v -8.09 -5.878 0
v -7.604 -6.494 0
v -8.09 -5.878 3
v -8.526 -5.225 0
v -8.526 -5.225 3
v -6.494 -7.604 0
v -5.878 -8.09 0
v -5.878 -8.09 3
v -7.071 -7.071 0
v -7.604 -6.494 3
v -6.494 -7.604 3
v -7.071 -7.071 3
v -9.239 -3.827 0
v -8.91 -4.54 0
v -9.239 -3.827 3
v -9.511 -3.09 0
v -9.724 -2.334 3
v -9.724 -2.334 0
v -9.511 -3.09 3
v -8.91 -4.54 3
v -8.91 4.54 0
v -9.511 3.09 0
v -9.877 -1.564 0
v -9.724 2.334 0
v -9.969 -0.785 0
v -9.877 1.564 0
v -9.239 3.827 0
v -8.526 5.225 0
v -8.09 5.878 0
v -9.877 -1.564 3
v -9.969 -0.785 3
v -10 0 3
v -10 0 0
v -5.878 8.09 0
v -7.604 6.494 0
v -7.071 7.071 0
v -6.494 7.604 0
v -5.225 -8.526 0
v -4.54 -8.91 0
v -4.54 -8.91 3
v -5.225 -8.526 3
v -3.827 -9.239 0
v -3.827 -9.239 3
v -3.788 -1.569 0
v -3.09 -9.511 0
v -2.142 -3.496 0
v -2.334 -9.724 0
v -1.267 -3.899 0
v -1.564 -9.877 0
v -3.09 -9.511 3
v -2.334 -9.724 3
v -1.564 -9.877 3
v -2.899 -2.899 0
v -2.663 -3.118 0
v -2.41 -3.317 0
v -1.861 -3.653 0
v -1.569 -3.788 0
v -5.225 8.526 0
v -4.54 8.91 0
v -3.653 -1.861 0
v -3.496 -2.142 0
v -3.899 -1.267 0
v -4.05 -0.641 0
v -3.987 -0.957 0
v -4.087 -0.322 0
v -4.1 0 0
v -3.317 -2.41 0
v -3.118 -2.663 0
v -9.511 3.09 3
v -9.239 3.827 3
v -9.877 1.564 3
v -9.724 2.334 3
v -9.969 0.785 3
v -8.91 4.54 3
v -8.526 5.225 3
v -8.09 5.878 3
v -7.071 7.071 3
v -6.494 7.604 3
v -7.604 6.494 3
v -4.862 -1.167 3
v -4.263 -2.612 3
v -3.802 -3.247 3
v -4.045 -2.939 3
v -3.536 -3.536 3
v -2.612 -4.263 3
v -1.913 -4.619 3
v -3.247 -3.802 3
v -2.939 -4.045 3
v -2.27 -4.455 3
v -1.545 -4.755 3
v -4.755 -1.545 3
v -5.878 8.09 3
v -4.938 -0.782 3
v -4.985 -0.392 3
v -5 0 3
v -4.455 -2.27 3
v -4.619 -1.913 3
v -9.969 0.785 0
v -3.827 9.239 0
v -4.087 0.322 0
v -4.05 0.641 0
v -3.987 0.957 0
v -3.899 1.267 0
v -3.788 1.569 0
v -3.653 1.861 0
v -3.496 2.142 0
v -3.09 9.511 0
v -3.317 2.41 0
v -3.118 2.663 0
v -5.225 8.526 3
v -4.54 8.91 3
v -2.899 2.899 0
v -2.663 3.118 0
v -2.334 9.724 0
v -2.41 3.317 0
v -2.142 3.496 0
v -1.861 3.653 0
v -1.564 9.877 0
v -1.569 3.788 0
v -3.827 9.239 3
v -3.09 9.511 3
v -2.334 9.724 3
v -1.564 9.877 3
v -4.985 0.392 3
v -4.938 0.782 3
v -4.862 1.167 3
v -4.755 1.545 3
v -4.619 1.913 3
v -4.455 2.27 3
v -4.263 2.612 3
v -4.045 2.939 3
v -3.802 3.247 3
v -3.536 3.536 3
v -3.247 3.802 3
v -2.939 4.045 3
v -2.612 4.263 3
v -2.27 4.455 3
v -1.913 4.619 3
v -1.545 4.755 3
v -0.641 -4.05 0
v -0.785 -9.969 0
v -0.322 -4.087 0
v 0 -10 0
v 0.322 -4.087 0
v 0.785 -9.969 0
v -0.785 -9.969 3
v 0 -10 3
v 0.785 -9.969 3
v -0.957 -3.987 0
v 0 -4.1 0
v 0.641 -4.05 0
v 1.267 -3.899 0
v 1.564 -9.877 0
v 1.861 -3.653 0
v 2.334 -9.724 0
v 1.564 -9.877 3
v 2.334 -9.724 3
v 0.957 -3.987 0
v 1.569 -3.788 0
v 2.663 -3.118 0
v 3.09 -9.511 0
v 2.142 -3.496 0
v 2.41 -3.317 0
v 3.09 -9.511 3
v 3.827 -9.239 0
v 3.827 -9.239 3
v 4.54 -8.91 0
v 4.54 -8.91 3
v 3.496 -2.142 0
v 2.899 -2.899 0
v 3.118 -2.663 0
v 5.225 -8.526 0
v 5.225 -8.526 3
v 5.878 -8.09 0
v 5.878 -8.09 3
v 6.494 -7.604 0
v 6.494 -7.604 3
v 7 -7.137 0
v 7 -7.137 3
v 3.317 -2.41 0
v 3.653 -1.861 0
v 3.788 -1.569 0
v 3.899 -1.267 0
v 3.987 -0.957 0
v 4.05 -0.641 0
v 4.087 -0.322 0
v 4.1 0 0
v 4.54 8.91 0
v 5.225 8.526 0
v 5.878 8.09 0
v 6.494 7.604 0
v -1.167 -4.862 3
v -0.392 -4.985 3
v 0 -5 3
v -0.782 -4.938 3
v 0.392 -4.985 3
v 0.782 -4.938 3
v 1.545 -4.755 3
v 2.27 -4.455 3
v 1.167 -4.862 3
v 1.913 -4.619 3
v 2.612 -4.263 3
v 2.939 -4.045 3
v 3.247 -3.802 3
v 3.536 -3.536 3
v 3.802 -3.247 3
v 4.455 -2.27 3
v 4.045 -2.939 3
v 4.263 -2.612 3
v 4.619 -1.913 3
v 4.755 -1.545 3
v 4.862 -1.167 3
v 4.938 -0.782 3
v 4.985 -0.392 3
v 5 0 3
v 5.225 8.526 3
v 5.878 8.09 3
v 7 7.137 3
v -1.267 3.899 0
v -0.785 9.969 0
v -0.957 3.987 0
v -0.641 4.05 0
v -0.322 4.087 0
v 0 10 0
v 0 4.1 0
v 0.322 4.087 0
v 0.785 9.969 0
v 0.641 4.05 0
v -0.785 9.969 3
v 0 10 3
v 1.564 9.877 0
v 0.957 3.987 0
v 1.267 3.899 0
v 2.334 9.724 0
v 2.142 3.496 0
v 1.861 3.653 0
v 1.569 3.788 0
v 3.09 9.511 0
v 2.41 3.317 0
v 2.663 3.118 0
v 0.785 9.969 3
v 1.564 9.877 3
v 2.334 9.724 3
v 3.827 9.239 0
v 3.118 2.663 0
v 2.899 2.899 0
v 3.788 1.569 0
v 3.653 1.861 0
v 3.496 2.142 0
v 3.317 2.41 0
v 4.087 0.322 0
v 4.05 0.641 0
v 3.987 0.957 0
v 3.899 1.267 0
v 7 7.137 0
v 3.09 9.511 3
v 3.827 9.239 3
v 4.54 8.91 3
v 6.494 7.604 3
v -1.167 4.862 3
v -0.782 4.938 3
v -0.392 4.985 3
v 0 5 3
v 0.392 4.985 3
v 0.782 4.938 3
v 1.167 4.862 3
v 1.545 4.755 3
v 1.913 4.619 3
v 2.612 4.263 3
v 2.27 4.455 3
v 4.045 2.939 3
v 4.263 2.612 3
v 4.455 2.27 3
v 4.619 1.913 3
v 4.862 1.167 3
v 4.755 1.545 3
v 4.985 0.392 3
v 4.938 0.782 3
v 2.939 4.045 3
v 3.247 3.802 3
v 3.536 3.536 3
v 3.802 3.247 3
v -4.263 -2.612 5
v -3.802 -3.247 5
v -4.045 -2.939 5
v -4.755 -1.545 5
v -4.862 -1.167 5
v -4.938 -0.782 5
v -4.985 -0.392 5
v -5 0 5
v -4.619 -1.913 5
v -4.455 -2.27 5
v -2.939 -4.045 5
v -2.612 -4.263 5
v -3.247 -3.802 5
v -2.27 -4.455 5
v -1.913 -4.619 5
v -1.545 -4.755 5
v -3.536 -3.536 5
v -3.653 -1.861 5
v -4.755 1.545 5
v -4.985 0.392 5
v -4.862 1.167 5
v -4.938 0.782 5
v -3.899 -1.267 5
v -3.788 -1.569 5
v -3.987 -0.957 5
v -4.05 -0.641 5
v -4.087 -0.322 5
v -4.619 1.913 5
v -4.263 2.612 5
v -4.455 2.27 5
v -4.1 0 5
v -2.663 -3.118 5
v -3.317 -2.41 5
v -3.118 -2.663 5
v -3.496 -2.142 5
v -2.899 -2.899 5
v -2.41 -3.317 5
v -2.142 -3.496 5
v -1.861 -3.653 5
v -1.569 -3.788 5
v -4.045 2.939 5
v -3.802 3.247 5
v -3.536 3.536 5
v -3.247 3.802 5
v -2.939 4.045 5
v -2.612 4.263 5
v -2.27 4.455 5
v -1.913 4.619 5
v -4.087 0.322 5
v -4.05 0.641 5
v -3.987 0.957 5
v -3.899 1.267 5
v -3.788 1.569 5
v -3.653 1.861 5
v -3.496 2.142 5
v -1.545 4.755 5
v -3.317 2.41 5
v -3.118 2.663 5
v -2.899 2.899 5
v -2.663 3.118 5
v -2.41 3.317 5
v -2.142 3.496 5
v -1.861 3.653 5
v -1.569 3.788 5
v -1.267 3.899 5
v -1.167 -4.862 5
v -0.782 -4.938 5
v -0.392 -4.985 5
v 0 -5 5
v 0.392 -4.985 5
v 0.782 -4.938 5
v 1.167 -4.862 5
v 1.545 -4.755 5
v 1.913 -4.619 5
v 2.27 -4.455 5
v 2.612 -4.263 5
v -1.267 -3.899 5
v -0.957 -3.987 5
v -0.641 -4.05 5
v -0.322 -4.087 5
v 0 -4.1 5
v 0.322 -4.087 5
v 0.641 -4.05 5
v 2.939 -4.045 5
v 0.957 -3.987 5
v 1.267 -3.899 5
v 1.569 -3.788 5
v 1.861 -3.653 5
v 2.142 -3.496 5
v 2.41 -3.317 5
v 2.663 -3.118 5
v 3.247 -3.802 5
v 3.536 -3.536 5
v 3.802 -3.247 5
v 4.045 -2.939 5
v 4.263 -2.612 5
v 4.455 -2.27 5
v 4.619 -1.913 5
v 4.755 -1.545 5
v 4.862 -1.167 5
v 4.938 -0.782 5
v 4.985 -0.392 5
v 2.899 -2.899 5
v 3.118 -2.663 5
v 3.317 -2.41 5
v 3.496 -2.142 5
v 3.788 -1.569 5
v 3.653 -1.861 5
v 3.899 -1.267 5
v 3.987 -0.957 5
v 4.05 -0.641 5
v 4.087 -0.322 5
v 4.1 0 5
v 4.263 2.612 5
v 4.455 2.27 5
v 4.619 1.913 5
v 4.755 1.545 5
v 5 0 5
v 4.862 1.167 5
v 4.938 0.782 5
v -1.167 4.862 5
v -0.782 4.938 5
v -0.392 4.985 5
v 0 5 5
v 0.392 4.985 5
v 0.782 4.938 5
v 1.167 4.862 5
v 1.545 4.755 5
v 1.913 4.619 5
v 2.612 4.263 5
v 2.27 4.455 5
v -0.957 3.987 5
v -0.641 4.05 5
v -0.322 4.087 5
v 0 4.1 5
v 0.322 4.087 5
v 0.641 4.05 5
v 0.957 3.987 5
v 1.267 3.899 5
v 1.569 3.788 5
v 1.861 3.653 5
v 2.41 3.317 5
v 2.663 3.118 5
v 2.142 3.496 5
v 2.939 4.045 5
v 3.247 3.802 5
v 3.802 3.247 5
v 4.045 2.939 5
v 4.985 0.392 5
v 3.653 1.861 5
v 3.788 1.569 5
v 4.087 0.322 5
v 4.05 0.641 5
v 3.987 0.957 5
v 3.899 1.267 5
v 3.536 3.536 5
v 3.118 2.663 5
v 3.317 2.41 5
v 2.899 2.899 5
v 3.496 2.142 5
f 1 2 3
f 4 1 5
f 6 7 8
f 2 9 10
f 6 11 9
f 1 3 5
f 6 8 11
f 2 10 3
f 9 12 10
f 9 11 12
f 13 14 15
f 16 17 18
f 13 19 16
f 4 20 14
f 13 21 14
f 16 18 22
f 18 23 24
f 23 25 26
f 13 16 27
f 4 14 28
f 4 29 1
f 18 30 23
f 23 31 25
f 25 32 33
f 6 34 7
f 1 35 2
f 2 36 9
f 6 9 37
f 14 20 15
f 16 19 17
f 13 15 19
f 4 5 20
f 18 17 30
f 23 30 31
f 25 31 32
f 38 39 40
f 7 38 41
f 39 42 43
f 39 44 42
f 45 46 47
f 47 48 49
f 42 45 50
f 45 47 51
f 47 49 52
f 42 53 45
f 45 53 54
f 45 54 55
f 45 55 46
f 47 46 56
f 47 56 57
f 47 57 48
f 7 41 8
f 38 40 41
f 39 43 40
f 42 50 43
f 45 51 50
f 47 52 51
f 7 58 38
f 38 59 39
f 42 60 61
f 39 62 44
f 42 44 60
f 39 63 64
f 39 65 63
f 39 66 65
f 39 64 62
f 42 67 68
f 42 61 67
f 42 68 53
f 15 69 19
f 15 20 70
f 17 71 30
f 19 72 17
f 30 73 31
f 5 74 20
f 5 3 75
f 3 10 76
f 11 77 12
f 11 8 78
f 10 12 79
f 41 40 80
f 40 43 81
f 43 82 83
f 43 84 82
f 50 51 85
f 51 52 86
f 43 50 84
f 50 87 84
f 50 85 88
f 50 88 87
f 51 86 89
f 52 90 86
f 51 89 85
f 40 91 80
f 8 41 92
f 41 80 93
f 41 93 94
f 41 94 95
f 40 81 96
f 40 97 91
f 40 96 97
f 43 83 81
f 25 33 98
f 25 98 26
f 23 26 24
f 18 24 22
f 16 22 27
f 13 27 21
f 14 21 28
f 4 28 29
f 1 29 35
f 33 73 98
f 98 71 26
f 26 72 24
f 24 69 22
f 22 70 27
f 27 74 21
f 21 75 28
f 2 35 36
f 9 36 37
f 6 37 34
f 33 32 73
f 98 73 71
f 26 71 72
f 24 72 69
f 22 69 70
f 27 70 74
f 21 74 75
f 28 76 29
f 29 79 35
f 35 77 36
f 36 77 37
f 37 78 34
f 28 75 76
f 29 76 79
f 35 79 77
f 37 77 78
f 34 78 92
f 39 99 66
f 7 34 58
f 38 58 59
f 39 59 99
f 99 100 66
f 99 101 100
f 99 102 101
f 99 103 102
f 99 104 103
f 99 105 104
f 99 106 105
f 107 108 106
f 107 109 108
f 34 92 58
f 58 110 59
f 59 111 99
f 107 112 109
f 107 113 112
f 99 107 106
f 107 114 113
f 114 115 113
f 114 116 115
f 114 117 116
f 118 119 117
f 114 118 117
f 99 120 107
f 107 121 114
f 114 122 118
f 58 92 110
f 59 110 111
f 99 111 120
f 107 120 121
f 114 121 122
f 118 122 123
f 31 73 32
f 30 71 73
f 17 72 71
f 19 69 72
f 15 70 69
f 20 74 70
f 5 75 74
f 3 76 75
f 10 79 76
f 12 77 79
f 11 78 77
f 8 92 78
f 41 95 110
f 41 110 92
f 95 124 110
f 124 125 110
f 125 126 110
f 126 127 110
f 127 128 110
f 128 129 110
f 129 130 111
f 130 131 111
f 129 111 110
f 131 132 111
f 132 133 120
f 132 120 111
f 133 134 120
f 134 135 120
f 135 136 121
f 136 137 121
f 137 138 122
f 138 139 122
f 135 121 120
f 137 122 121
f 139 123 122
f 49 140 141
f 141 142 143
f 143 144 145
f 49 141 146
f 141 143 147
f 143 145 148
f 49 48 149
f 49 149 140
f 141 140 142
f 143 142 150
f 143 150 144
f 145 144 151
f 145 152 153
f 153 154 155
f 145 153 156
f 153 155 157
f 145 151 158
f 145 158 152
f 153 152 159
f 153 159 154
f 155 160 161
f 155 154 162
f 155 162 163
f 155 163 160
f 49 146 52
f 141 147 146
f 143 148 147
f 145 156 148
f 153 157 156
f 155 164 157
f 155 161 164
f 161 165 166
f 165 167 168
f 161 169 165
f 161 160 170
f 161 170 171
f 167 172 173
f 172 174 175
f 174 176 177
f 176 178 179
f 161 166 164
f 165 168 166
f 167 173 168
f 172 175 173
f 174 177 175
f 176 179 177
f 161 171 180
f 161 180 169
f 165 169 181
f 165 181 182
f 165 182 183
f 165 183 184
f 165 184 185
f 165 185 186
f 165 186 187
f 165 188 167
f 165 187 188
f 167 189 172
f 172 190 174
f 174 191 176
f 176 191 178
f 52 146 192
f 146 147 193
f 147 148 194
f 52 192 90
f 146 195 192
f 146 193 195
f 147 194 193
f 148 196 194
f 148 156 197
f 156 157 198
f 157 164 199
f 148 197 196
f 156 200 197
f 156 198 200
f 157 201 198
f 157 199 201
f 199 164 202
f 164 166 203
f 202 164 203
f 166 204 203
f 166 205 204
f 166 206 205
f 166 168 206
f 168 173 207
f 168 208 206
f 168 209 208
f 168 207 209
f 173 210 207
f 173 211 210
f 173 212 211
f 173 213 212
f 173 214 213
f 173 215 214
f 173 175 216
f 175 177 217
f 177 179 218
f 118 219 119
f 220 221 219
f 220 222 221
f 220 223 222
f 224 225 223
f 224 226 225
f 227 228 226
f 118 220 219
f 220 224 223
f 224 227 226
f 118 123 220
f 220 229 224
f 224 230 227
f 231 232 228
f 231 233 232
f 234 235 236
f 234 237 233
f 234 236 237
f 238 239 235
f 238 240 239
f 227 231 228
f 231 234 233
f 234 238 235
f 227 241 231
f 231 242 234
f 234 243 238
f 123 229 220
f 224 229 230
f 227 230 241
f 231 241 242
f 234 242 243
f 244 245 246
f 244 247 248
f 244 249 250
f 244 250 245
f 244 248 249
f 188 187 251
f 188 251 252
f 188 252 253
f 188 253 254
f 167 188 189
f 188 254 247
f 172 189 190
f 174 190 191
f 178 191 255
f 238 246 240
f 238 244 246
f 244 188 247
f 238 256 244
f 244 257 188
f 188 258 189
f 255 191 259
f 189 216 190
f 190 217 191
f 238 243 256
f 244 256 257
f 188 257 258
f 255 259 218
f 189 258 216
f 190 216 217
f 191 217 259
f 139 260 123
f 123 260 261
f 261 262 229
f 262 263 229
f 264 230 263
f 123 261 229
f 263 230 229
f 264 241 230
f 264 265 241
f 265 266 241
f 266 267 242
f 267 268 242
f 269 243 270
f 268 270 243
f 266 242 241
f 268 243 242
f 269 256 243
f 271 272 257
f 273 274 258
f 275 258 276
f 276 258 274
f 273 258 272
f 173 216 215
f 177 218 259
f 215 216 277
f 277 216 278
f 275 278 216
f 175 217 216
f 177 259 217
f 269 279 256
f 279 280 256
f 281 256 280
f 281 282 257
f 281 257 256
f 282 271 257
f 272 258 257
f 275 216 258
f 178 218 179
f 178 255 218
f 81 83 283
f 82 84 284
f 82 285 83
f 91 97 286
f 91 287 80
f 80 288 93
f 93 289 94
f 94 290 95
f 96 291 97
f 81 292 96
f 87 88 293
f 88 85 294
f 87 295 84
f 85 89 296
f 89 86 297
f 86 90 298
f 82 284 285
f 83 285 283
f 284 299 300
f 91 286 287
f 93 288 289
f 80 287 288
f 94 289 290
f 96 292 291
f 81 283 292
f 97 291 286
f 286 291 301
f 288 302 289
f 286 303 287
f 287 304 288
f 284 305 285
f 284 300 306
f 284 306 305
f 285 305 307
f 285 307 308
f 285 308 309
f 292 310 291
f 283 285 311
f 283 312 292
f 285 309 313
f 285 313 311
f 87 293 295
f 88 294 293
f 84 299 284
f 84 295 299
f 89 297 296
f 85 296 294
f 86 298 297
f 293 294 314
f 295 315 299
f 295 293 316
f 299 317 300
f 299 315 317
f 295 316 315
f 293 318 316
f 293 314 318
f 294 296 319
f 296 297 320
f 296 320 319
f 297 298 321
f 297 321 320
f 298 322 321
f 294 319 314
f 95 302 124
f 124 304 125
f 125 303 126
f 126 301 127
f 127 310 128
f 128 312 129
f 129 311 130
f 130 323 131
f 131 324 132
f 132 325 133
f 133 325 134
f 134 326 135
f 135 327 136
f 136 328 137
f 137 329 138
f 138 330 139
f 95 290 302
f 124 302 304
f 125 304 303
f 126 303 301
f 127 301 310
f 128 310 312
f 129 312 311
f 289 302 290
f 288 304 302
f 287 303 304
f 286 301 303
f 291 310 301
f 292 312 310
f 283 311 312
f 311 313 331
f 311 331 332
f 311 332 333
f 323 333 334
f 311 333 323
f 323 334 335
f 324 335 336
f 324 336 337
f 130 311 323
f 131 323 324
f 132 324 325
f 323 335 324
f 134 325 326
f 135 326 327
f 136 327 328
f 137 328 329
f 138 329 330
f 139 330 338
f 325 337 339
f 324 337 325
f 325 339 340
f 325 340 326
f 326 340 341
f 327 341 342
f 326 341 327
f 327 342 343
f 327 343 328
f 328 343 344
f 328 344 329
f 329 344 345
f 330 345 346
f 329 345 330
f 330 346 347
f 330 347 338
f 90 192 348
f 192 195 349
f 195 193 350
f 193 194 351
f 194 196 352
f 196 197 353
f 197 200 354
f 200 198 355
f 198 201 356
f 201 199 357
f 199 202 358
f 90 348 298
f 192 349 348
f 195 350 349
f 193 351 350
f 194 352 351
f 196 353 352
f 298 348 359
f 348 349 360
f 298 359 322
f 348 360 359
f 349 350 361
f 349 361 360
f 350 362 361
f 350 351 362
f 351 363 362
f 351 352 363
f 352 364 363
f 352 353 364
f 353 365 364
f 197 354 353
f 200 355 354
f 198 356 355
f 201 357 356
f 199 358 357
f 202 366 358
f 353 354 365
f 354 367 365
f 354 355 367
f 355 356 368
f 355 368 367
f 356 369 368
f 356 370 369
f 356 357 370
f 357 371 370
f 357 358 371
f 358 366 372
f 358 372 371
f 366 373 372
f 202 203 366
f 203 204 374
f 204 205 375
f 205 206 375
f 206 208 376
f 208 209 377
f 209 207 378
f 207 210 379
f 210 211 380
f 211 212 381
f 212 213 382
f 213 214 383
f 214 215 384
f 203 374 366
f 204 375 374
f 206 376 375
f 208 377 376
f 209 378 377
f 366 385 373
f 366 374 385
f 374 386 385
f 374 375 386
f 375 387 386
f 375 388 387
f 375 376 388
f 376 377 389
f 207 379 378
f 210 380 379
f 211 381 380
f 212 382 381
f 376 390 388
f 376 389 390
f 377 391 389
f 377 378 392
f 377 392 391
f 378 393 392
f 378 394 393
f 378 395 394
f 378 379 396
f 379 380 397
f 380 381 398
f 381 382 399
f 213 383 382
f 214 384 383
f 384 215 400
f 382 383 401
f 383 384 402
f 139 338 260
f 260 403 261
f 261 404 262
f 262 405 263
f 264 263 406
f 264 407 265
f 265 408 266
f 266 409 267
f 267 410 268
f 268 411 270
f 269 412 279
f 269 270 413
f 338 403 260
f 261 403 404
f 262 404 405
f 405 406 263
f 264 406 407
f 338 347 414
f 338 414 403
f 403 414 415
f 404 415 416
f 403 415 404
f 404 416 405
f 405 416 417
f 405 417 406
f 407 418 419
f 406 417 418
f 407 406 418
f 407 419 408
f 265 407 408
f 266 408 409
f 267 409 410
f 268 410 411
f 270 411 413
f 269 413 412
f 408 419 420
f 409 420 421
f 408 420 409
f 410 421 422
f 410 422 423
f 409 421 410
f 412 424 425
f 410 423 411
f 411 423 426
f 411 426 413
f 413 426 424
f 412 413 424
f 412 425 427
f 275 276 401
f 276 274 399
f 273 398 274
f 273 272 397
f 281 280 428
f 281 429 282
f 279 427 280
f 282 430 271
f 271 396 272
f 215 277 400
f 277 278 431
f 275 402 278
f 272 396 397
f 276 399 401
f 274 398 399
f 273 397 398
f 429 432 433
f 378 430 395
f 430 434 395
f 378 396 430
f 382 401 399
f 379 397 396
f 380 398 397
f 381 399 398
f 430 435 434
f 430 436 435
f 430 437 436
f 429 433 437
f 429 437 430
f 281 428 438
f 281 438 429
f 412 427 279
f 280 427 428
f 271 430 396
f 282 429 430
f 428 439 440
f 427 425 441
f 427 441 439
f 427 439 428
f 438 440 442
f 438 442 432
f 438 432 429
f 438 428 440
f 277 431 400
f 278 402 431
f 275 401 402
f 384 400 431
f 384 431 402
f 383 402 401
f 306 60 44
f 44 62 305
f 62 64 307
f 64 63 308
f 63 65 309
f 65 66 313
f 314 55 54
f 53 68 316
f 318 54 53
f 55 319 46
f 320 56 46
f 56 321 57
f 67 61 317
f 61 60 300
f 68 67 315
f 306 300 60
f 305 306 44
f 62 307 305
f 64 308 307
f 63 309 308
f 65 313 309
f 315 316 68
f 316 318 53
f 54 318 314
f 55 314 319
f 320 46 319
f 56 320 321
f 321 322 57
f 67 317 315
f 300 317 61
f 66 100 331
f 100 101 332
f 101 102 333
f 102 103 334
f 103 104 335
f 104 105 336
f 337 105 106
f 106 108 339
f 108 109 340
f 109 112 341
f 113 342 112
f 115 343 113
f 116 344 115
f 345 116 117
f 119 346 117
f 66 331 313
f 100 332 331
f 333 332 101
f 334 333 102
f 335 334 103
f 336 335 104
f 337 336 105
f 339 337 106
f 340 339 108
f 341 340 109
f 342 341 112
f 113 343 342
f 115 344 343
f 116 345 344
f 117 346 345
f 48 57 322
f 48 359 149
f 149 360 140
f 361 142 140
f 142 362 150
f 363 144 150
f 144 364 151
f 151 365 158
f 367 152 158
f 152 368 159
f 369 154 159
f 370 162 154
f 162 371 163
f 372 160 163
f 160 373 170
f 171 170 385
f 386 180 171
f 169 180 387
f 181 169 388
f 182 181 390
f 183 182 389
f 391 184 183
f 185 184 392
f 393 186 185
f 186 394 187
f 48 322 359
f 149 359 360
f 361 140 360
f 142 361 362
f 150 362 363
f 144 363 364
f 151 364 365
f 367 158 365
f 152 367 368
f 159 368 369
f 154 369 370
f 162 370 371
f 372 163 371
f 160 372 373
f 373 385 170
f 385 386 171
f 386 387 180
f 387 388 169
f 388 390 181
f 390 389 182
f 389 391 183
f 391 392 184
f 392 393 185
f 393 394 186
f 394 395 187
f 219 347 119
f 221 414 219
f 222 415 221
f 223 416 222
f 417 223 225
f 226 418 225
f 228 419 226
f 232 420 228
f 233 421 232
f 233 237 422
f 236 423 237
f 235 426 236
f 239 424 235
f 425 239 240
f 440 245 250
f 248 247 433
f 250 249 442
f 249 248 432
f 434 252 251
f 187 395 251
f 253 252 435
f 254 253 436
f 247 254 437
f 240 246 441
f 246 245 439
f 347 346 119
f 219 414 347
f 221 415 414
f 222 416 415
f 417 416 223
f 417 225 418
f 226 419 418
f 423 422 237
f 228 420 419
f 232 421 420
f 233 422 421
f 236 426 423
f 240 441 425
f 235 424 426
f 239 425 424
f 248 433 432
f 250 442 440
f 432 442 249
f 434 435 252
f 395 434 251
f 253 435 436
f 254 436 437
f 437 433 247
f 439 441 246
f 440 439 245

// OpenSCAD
// file: lib/stop_wedge.scad
// Annular-sector stop wedge, shared by end_cap.scad and tip_bracket.scad.
// Sits on z = 0, extends +z, centered on the +x direction. Its flat
// radial side faces land flush on the vane sleeve notch's walls (cut by
// the same kind of radial plane in vane.scad), so the stop impact is a
// face contact, not a cylinder's line contact.
//
// Fully parameterized like bores.scad: callers pass the shared
// stop_wedge_* values from design_params.scad.
//
// deg should be a multiple of 4 so the 2-degree facet steps land
// exactly on the side faces.

module stop_wedge(ri, ro, deg, h) {
    linear_extrude(height = h)
        polygon(concat(
            [for (a = [-deg / 2 : 2 : deg / 2]) [ro * cos(a), ro * sin(a)]],
            [for (a = [deg / 2 : -2 : -deg / 2]) [ri * cos(a), ri * sin(a)]]));
}
// main file
// ==============================================================================
//   STOP RING — print TWO. The vane's thrust seat, SMOOTH: one
//   D-footed piece per arm tip, no fin.
//
//   A D-shaped foot drops into the matching pocket in the tip
//   bracket's top face and is trapped when the clamshell closes, the
//   same way the rods are. On top of the flush foot sits the boss
//   ring, the small ring the sleeve spins on. Field finding from the
//   built machine: two stops never land exactly together, one face
//   takes every hit anyway, and a fin near the sleeve's end face is
//   friction risk on the wing — so the fin is gone, the cap's wedge
//   is the only stop, and the driven-stop angle is a two-bolt cap
//   adjustment instead of baked-in geometry. The D flat still keys
//   the foot into the pocket, it just no longer has an angle to set.
//
//   Being its own part is what makes it print perfectly: on its
//   back, foot and boss are plain vertical prisms with no overhang
//   anywhere. It is also the sacrificial piece: the thrust seat
//   takes all the spin friction, and a worn one is a tiny reprint.
//
//   The fin stays available as a module option (fin_deg > 0 grows a
//   fin of that arc, contact flank at the driven stop): the tri
//   variant's keyed-ring stop uses it, and it is the way back if the
//   cap-only experiment loses.
// ==============================================================================

include <design_params.scad>
use <lib/stop_wedge.scad>

$fn = 80;

module stop_ring(fin_deg = 0) {
    // the fin's contact flank sits where the flag stops exactly at
    // panel-along-the-arm (the tri scene draws the same relation)
    wall_lo = 90 - (vane_swing_deg + fin_deg) / 2;
    difference() {
        union() {
            // D foot, flat toward outboard (+x)
            intersection() {
                cylinder(h = ring_foot_t, d = ring_foot_d);
                translate([ring_flat_x - 1000, -500, -1]) cube(1000);
            }
            // boss: the sleeve's thrust seat, as narrow as printable
            // so the friction radius, and with it the self-start
            // wind, stays minimal (performance_check gates it)
            translate([0, 0, ring_foot_t])
                cylinder(h = collar_boss_h, d = ring_boss_d);
            // optional stop fin, through the boss layer and into the
            // sleeve's lower notch (tri variant only)
            if (fin_deg > 0)
                translate([0, 0, ring_foot_t])
                    rotate([0, 0, wall_lo + fin_deg / 2])
                        stop_wedge(stop_wedge_ri, stop_wedge_ro,
                                   fin_deg,
                                   collar_boss_h + stop_wedge_len);
        }
        // free over the (static) stub: the ring is keyed, not clamped
        translate([0, 0, -0.5])
            cylinder(h = ring_foot_t + collar_boss_h + 1, d = rod_free_d);
    }
}

stop_ring();
